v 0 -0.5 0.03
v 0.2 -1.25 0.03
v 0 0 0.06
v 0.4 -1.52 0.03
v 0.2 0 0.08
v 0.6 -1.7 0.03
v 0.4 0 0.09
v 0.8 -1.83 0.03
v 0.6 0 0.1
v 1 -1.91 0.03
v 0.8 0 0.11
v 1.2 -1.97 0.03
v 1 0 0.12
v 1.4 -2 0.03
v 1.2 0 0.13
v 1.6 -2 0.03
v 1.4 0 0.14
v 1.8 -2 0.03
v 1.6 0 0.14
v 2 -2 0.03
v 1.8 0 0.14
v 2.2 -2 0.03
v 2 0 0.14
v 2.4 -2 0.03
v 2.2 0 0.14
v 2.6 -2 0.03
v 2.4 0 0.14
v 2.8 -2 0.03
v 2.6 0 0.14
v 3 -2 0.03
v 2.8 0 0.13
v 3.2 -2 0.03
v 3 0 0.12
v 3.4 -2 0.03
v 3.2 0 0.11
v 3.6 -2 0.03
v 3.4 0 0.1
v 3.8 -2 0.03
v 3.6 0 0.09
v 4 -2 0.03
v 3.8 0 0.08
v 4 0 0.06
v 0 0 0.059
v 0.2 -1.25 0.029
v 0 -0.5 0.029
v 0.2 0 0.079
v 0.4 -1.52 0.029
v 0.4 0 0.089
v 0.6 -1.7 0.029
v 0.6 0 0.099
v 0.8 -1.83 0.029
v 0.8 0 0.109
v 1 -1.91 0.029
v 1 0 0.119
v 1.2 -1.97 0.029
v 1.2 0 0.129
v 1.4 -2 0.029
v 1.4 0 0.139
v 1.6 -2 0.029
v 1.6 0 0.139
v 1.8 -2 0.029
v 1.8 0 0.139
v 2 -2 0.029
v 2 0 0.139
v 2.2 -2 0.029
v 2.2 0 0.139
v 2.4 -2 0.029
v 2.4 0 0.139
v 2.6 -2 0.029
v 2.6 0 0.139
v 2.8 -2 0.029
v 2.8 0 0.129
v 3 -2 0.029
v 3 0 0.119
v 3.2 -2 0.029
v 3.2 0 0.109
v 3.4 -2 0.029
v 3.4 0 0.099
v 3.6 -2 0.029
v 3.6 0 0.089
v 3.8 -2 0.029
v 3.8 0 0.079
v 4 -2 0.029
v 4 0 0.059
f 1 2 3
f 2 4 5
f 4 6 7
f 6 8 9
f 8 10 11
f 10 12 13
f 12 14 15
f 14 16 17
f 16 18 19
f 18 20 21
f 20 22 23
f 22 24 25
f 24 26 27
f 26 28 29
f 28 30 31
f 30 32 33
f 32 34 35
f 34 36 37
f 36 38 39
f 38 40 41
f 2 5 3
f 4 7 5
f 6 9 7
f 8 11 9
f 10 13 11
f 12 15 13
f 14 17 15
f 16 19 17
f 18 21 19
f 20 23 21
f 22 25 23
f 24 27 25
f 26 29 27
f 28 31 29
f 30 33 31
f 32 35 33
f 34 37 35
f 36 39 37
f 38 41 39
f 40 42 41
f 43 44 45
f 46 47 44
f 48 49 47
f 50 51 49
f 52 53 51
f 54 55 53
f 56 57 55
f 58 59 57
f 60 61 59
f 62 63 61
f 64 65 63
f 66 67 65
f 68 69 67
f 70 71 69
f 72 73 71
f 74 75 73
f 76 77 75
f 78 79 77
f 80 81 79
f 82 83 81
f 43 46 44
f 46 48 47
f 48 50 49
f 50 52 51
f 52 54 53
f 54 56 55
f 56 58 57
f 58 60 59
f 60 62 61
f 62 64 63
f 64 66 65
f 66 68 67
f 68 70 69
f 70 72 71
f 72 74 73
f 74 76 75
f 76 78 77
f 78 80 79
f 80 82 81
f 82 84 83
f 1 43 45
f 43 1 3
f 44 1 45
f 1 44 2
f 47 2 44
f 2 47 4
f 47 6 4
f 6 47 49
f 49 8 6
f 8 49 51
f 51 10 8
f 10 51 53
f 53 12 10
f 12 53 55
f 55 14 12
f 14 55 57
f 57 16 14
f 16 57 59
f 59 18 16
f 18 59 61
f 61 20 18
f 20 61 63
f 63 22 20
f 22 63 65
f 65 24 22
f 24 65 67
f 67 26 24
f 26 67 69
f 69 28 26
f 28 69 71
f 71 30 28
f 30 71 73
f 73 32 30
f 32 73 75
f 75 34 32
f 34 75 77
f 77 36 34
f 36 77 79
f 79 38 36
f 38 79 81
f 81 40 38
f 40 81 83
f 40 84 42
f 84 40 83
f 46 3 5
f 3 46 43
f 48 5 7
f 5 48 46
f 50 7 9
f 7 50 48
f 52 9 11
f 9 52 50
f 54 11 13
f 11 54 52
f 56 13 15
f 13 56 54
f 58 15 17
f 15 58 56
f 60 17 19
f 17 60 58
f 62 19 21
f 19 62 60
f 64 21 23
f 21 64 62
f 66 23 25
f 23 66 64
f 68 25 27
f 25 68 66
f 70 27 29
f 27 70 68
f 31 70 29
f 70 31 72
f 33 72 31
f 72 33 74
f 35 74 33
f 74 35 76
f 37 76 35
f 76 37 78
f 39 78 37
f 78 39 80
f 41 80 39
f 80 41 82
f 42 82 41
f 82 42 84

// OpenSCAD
// file: MMlib/__comm__/__nearest_multiple_of_4.scad
function __nearest_multiple_of_4(n) =
    let(remain = n % 4)
    remain > 1 ? n - remain + 4 : n - remain;
// file: MMlib/__comm__/__frags.scad
function __frags(radius) = 
    $fn == 0 ?  
        max(min(360 / $fa, radius * 6.283185307179586 / $fs), 5) :
        max($fn, 3);
// file: MM/slice_vector.scad
/// vector の部分 vector を取得
/// @param begin 取得したい部分 vector の先頭位置
/// @param end   取得したい部分 vector の終端位置
/// @param internal_buffer 内部バッファー ( 明示的に引数として与える必要はありません )
function slice_vector( v, begin = 0, end = 0, internal_buffer = [ ] ) = 
  let( end = end > begin ? end : begin )
    begin == end
      ? internal_buffer
      : concat( [ v[ begin ] ], slice_vector( v, begin + 1, end, internal_buffer ) )
  ;
// file: MMlib/line3d.scad
/**
* line3d.scad
*
* @copyright Justin Lin, 2017
* @license https://opensource.org/licenses/lgpl-3.0.html
*
* @see https://openhome.cc/eGossip/OpenSCAD/lib3x-line3d.html
*
**/

use <./__comm__/__frags.scad>
use <./__comm__/__nearest_multiple_of_4.scad>

module line3d(p1, p2, diameter = 1, p1Style = "CAP_CIRCLE", p2Style = "CAP_CIRCLE") {
    r = diameter / 2;

    frags = __nearest_multiple_of_4(__frags(r));
    half_fa = 180 / frags;
    
    v = p2 - p1;
    length = norm(v);
    ay = 90 - atan2(v.z, norm([v.x, v.y]));
    az = atan2(v.y, v.x);

    angles = [0, ay, az];

    module cap_with(p) { 
        translate(p) 
        rotate(angles) 
            children();  
    } 

    module cap_butt() {
        cap_with(p1)                 
        linear_extrude(length) 
            circle(r, $fn = frags);
        
        // hook for testing
        test_line3d_butt(p1, r, frags, length, angles);
    }

    module cap(p, style) {
        if(style == "CAP_CIRCLE") {
            cap_leng = r / 1.414;
            cap_with(p) 
            linear_extrude(cap_leng * 2, center = true) 
                circle(r, $fn = frags);

            // hook for testing
            test_line3d_cap(p, r, frags, cap_leng, angles);
        } else if(style == "CAP_SPHERE") { 
            cap_leng = r / cos(half_fa);
            cap_with(p)
                sphere(cap_leng, $fn = frags);  
            
            // hook for testing
            test_line3d_cap(p, r, frags, cap_leng, angles);
        }            
    }


    cap_butt();
    cap(p1, p1Style);
    cap(p2, p2Style);
}

// Override them to test
module test_line3d_butt(p, r, frags, length, angles) {

}

module test_line3d_cap(p, r, frags, cap_leng, angles) {
    
}
// file: MM/pop_vector_block.scad
include <slice_vector.scad>

/// vector の末尾要素から length 個の要素を並び順のまま取得
function pop_vector_block( v, length = 0 ) = 
  let( end = len( v ) )
    slice_vector( v, end - length, end )
  ;
// file: MM/shift_vector.scad
include <slice_vector.scad>

/// vector の先頭から length 個の部分要素を取得
function shift_vector( v, length = 0 ) = 
  slice_vector( v, 0, length )
  ;
// file: MMlib/hull_polyline3d.scad
/**
* hull_polyline3d.scad
*
* @copyright Justin Lin, 2017
* @license https://opensource.org/licenses/lgpl-3.0.html
*
* @see https://openhome.cc/eGossip/OpenSCAD/lib3x-hull_polyline3d.html
*
**/

module hull_polyline3d(points, diameter = 1) {
    echo("`hull_polyline3d` is deprecated since 3.2. Use `polyline_join` instead.");
    
    radius = diameter / 2;
    leng = len(points);
    
    module hull_line3d(index) {
        point1 = points[index - 1];
        point2 = points[index];

        hull() {
            translate(point1) 
                children();
            translate(point2) 
                children();
        }

        // hook for testing
        test_hull_polyline3d_line_segment(index, point1, point2, radius);        
    }

    for(i = [1:leng - 1]) {
        hull_line3d(i)
            sphere(radius);
    }
}

// override it to test
module test_hull_polyline3d_line_segment(index, point1, point2, radius) {

}
// file: MMlib/polyline3d.scad
/**
* polyline3d.scad
*
* @copyright Justin Lin, 2017
* @license https://opensource.org/licenses/lgpl-3.0.html
*
* @see https://openhome.cc/eGossip/OpenSCAD/lib3x-polyline3d.html
*
**/

use <./line3d.scad>

module polyline3d(points, diameter, startingStyle = "CAP_CIRCLE", endingStyle = "CAP_CIRCLE") {
    leng_pts = len(points);
    
    s_styles = [startingStyle, "CAP_BUTT"];
    e_styles = ["CAP_SPHERE", endingStyle];
    default_styles = ["CAP_SPHERE", "CAP_BUTT"];

    module line_segment(index) {
        styles = index == 1 ? s_styles : 
                 index == leng_pts - 1 ? e_styles : 
                 default_styles;

        p1 = points[index - 1];
        p2 = points[index];
        p1Style = styles[0];
        p2Style = styles[1];        
        
        line3d(p1, p2, diameter, 
               p1Style = p1Style, p2Style = p2Style);       
    }

    if(leng_pts == 2) {
        line3d(points[0], points[1], diameter, startingStyle, endingStyle);
    }
    else {
        for(i = [1:leng_pts - 1]) {
            line_segment(i);
        }
    }
}
// file: MM/reverse.scad
include <shift_vector.scad>
include <pop_vector_block.scad>

/// vector を逆順で取得
/// @param v 逆順にしたい元の vector
/// @param internal_buffer 内部バッファー ( 明示的に引数として与える必要はありません )
function reverse( v, internal_buffer = [ ] ) = 
  len( v ) == 0
    ? internal_buffer
    : reverse(  shift_vector( v, len( v ) - 1 ) , concat( internal_buffer, pop_vector_block( v, 1 ) ) )
  ;
// file: colors.scad
// colors.scad
// Credit: David Powell, OpenSCAN Forum



//group ABS_<colorname>
//	discription  common 3d printer ABS filament colors
// actual colours may need some tweaking

ABS_Nature =[0.8,0.8,0.8,0.8];
ABS_White =[0.9,0.9,0.9,1];
ABS_Black =[0.1,0.1,0.1,1];
ABS_Red = [0.7,0,0,1];
ABS_Green = [0,0.7,0,1];
ABS_Blue = [0,0,0.7,1];
ABS_Orange =[0.8,0.4,0,1];
ABS_Purple =[0.7,0,0.7,1];
ABS_Brown =[0.6,0.2,0.2,1];
ABS_Glow_Blue =[0,0,.99,1];
ABS_Flurescence_Green =[0,1,0,1];
ABS_Flurescence_Yellow = [0.9,0.9,0,1];

//group PLA_<colorname>
//	discription  common 3d printer PLA filament colors
// actual colours may need some tweaking

PLA_Nature =[0.8,0.8,0.8,0.8];
PLA_White =[0.9,0.9,0.9,1];
PLA_Black =[0.1,0.1,0.1,1];
PLA_Red = [0.7,0,0,1];
PLA_Green = [0,0.7,0,1];
PLA_Blue = [0,0,0.7,1];
PLA_Orange =[0.8,0.4,0,1];
PLA_Purple =[0.7,0,0.7,1];
PLA_Brown =[0.6,0.2,0.2,1];
PLA_Glow_Blue =[0,0,.99,1];
PLA_Flurescence_Green =[0,1,0,1];
PLA_Flurescence_Yellow = [0.9,0.9,0,1];

//group ANODIZED_<colorname>
//	discription  common aluminium anodized colors
// these don't seem to follow normal color tables as the process
// produces a color change difference to the named color
// dew to base metal
// actual colours may need some tweaking

ANODIZED_Red =[0.7,0,0,1];
ANODIZED_Gold =[0.8,0.8,0.0,1];
ANODIZED_Black =[0.1,0.1,0.1,1];
ANODIZED_Blue =[0,0,0.7,1];
ANODIZED_Green =[0,0.5,0,1];
ANODIZED_Gray =[0.4,0.4,0.4,1];
ANODIZED_Dark_Blue =[0,0.2,0.6,1];
ANODIZED_Lime_Green =[0,0.8,0,1];
ANODIZED_Purple =[0.5,0,0.7,1];		//more blue than purple
ANODIZED_Light_Blue =[0.4,0.4,1,1];
ANODIZED_Pink =[0.7,0,0.7,1];		//more purlpe than pink
ANODIZED_Orange =[0.9,0.5,0,1];
ANODIZED_Scandia_Gold =[0.9,0.6,0.3,1];
ANODIZED_Copper =[0.7,0.5,0,1];		//more brown than copper
ANODIZED_Clear =[0.7,0.7,0.9,1];	//natural aluminium color
ANODIZED_Light_Bronze =[0.4,0.4,0.3,1]; //more silver than bronze
ANODIZED_Gold_Nickel =[0.8,0.8,0.6,1];
ANODIZED_Brush_Nickel =[0.8,0.8,0.7,1];

//group METAL_<typename>
//	discription common metal colors
// colors need tweaking

METAL_Aluminium = [0.7,0.7,0.8,1];
METAL_Brass = [0.88,0.78,0.5,1];
METAL_Copper = [0.9,0.6,0.5,1];
METAL_Steel = [0.9,0.9,0.8,1];
METAL_Stainless = [0.8,0.8,0.7,1];
METAL_Titanium = [0.7,0.7,0.6,1];
METAL_Bronze = [0.9,0.4,0.4,1];
METAL_Gold = [0.9,0.9,0.0,1];
METAL_Silver = [0.8,0.8,0.8,1];
METAL_Iron = [0.6,0.6,0.6,1];

// group WOOD_<typename>
//	discription common wood colors
// probabaly wrong

WOOD_Oak = [0.4,0.2,0.2,1];
WOOD_Birch = [0.8,0.8,0.4,1];
WOOD_Red = [0.7,0.3,0.3,1];
WOOD_pine = [0.8,0.8,0.4,1];
WOOD_Beach = [0.8,0.6,0.3,1];
WOOD_Spruce = [0.8,0.8,0.7,1];
WOOD_Balsa = [0.95,0.86,0.73];

// group GLASS_<color>
//	discription common glass colors
// needs tweaking

GLASS_Clear = [0.8,0.8,0.8,0.2];
GLASS_Red = [0.8,0,0,0.4];
GLASS_Green = [0,0.8,0,.4];
GLASS_Blue = [0,0,0.8,.4];
GLASS_Brown = [0.5,0.3,0.1,.4];

CONCRETE = [210/255, 209/255, 205/255];
// file: cover_points.scad
g_pts = [
    [
        [0.00, 0.00, 0.06],[0.00, -0.50, 0.03]
    ],
    [
        [0.20, -0.00, 0.08],[0.20, -1.25, 0.03]
    ],
    [
        [0.40, -0.00, 0.09],[0.40, -1.52, 0.03]
    ],
    [
        [0.60, -0.00, 0.10],[0.60, -1.70, 0.03]
    ],
    [
        [0.80, -0.00, 0.11],[0.80, -1.83, 0.03]
    ],
    [
        [1.00, -0.00, 0.12],[1.00, -1.91, 0.03]
    ],
    [
        [1.20, -0.00, 0.13],[1.20, -1.97, 0.03]
    ],
    [
        [1.40, -0.00, 0.14],[1.40, -2.00, 0.03]
    ],
    [
        [1.60, -0.00, 0.14],[1.60, -2.00, 0.03]
    ],
    [
        [1.80, -0.00, 0.14],[1.80, -2.00, 0.03]
    ],
    [
        [2.00, -0.00, 0.14],[2.00, -2.00, 0.03]
    ],
    [
        [2.20, -0.00, 0.14],[2.20, -2.00, 0.03]
    ],
    [
        [2.40, -0.00, 0.14],[2.40, -2.00, 0.03]
    ],
    [
        [2.60, -0.00, 0.14],[2.60, -2.00, 0.03]
    ],
    [
        [2.80, -0.00, 0.13],[2.80, -2.00, 0.03]
    ],
    [
        [3.00, -0.00, 0.12],[3.00, -2.00, 0.03]
    ],
    [
        [3.20, -0.00, 0.11],[3.20, -2.00, 0.03]
    ],
    [
        [3.40, -0.00, 0.10],[3.40, -2.00, 0.03]
    ],
    [
        [3.60, -0.00, 0.09],[3.60, -2.00, 0.03]
    ],
    [
        [3.80, -0.00, 0.08],[3.80, -2.00, 0.03]
    ],
    [
        [4.00, 0.00, 0.06],[4.00, -2.00, 0.03]
    ]
];
// main file
use <function_grapher.scad>;
include <./cover_points.scad>
include <colors.scad>

thickness = 0.001;
style = "FACES";  // LINES to show surface grid

module covering() {
  color(GLASS_Blue)
  function_grapher(g_pts, thickness, style);
}


covering();
